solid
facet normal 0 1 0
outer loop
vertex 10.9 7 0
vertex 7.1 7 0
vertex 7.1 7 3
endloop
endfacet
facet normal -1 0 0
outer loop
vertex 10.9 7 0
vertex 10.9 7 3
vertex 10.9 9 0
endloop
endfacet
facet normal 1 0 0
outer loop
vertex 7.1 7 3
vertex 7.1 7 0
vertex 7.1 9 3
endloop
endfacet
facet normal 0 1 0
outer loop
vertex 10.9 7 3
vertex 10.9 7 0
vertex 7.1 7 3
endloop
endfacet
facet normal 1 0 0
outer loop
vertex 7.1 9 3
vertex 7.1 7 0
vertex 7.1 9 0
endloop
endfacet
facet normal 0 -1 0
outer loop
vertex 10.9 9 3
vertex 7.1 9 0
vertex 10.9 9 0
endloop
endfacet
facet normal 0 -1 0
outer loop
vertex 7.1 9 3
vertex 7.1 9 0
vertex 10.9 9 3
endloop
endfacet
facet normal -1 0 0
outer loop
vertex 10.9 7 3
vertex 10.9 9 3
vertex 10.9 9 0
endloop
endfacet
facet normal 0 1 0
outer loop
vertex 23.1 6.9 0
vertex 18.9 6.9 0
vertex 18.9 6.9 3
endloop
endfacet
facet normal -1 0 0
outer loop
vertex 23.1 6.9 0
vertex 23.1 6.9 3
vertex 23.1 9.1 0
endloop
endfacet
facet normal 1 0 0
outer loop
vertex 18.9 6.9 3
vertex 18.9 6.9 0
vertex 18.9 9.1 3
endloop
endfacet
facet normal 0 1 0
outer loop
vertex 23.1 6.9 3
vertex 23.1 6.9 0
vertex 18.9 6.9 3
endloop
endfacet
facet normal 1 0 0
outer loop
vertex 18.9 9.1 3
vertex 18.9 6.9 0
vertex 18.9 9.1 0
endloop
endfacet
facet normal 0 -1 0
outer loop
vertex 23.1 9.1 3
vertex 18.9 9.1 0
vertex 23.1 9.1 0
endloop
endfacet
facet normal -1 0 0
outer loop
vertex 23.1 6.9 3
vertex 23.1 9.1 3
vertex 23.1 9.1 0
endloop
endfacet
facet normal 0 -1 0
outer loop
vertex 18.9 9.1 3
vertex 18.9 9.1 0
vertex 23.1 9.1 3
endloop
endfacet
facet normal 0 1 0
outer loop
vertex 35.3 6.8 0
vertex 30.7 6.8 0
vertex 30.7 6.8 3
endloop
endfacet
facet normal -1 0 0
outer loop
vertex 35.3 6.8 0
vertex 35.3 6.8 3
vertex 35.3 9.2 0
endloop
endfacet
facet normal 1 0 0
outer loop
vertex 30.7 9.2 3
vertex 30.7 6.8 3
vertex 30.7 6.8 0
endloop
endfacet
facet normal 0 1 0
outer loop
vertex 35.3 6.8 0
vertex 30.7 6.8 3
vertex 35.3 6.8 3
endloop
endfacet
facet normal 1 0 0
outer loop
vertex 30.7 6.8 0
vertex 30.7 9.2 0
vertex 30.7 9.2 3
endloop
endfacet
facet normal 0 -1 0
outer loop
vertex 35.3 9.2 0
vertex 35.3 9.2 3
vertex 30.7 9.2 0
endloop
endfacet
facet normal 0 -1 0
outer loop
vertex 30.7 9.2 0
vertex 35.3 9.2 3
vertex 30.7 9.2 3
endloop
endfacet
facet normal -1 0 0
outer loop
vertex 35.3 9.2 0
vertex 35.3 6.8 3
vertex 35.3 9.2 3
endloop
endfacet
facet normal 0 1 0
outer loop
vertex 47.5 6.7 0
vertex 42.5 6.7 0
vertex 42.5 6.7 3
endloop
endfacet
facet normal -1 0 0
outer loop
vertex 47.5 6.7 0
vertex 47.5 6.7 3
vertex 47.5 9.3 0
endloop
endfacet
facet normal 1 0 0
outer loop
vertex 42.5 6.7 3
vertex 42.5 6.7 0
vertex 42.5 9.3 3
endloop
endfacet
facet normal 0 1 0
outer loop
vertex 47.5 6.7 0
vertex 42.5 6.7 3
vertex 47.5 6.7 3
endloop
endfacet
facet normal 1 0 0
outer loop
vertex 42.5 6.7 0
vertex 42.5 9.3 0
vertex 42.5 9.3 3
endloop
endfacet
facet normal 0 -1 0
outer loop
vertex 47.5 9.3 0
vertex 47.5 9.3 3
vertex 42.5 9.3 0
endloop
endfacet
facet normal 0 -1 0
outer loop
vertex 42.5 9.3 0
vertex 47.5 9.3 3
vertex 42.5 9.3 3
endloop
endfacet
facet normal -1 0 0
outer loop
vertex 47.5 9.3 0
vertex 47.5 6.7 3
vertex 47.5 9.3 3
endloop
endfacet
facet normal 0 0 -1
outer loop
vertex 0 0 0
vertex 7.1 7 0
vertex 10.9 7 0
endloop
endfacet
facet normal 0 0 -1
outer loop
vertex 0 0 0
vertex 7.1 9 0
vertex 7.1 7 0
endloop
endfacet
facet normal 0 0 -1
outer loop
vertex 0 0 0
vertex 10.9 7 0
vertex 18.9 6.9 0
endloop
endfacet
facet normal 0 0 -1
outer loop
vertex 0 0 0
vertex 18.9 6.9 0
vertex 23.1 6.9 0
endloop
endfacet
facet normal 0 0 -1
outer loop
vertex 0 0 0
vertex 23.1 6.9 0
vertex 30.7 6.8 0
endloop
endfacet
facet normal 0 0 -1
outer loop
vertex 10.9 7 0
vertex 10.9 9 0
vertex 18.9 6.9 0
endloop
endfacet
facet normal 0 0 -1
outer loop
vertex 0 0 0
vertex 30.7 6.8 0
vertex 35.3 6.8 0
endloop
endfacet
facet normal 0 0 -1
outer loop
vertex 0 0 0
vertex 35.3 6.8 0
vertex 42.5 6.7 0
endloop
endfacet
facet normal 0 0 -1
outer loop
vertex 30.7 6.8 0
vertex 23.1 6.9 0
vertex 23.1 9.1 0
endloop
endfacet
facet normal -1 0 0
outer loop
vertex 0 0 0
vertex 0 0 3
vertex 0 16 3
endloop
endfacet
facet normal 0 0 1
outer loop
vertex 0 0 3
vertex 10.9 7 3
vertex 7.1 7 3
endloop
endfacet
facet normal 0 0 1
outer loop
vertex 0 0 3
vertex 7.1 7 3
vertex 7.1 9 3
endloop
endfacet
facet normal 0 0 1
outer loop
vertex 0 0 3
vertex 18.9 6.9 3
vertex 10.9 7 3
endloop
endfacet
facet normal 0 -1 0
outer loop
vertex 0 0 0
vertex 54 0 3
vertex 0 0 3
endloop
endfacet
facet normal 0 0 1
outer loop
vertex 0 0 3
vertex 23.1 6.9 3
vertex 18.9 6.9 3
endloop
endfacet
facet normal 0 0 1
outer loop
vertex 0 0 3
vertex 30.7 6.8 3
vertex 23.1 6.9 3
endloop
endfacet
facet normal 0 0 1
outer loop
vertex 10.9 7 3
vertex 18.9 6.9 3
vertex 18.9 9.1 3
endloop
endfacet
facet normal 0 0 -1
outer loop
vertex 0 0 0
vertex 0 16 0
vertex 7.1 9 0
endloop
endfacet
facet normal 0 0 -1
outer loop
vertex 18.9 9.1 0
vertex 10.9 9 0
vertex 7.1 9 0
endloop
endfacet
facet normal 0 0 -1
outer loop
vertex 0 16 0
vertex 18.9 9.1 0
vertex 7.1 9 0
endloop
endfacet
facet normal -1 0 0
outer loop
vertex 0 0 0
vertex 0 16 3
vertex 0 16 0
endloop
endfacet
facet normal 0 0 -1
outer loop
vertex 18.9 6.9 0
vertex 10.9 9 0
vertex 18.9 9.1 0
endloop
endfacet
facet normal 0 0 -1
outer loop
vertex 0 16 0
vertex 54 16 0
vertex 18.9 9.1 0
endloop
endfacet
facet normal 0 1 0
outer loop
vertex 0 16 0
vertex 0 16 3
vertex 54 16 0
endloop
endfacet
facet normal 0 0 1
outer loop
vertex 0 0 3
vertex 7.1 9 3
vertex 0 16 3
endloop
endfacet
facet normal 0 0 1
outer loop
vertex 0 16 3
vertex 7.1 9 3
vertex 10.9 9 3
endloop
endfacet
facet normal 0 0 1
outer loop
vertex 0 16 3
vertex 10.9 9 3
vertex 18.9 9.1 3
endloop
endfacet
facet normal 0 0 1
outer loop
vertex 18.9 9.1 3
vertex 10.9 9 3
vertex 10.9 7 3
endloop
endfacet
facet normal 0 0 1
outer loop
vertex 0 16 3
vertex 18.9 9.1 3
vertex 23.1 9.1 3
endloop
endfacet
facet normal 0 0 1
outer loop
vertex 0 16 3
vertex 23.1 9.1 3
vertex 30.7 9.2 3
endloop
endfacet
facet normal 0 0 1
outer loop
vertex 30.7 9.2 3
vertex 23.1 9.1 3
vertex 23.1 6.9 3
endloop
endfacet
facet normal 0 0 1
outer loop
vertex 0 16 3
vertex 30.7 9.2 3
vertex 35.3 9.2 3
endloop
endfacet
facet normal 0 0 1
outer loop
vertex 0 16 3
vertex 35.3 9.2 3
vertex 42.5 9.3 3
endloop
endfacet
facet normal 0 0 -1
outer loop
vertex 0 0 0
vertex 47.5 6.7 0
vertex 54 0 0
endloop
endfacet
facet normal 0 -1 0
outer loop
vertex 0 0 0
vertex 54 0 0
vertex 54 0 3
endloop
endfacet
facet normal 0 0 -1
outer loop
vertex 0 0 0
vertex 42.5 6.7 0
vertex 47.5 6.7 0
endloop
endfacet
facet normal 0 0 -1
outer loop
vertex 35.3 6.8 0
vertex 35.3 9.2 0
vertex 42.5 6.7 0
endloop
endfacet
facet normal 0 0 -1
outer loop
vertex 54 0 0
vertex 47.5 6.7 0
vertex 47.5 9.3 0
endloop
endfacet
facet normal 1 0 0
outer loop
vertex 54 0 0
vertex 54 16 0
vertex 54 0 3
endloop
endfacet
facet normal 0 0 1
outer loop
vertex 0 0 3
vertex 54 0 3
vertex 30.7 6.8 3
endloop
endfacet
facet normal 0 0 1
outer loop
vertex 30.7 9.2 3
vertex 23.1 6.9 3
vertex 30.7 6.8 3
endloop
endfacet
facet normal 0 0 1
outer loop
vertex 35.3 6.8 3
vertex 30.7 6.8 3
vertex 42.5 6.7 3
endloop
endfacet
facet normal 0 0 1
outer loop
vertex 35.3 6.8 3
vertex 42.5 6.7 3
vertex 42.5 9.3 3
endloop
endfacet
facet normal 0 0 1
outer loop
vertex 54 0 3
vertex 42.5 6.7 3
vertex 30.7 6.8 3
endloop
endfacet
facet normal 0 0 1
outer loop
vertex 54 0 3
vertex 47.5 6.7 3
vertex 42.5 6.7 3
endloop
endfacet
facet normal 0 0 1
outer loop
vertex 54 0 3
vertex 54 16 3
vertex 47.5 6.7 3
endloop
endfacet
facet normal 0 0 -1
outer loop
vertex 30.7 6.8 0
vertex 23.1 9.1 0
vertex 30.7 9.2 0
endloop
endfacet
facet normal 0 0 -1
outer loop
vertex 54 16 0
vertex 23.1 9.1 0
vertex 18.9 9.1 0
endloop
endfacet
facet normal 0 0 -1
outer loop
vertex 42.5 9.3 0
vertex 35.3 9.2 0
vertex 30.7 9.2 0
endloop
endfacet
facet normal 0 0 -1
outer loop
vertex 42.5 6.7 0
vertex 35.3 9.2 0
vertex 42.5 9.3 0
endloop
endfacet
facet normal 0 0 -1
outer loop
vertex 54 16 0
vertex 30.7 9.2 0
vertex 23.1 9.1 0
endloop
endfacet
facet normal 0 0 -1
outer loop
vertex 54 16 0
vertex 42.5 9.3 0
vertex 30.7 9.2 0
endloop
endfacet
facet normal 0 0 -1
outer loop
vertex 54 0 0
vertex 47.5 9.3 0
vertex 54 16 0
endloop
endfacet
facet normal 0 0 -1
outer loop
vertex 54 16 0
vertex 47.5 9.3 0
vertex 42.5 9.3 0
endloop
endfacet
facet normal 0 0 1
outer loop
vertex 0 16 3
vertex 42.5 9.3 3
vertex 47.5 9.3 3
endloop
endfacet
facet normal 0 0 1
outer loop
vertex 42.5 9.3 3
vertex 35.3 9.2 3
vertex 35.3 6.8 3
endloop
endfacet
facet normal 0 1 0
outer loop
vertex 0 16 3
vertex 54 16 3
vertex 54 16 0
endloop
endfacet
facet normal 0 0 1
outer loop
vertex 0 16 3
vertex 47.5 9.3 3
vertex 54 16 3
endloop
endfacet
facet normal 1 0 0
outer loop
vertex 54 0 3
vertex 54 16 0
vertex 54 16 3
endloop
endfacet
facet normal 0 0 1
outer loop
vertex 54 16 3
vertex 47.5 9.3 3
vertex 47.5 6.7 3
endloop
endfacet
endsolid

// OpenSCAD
// Small no-support SG90 horn-tip gauge. Printed slots are deliberately
// provisional: choose the smallest slot that accepts the actual horn tip
// without force, then transfer its dimensions to the connector design.
$fn = 48;
slot_widths = [3.8, 4.2, 4.6, 5.0];
slot_thicknesses = [2.0, 2.2, 2.4, 2.6];
gauge_pitch = 12;
gauge_length = 54;
gauge_width = 16;
gauge_height = 3;

assert(len(slot_widths) == len(slot_thicknesses));
module horn_fit_gauge() {
    difference() {
        cube([gauge_length, gauge_width, gauge_height]);
        for (i = [0:3])
            translate([9 + i * gauge_pitch - slot_widths[i] / 2,
                       gauge_width / 2 - slot_thicknesses[i] / 2,
                       -0.1])
                cube([slot_widths[i], slot_thicknesses[i], gauge_height + 0.2]);
    }
}

horn_fit_gauge();
